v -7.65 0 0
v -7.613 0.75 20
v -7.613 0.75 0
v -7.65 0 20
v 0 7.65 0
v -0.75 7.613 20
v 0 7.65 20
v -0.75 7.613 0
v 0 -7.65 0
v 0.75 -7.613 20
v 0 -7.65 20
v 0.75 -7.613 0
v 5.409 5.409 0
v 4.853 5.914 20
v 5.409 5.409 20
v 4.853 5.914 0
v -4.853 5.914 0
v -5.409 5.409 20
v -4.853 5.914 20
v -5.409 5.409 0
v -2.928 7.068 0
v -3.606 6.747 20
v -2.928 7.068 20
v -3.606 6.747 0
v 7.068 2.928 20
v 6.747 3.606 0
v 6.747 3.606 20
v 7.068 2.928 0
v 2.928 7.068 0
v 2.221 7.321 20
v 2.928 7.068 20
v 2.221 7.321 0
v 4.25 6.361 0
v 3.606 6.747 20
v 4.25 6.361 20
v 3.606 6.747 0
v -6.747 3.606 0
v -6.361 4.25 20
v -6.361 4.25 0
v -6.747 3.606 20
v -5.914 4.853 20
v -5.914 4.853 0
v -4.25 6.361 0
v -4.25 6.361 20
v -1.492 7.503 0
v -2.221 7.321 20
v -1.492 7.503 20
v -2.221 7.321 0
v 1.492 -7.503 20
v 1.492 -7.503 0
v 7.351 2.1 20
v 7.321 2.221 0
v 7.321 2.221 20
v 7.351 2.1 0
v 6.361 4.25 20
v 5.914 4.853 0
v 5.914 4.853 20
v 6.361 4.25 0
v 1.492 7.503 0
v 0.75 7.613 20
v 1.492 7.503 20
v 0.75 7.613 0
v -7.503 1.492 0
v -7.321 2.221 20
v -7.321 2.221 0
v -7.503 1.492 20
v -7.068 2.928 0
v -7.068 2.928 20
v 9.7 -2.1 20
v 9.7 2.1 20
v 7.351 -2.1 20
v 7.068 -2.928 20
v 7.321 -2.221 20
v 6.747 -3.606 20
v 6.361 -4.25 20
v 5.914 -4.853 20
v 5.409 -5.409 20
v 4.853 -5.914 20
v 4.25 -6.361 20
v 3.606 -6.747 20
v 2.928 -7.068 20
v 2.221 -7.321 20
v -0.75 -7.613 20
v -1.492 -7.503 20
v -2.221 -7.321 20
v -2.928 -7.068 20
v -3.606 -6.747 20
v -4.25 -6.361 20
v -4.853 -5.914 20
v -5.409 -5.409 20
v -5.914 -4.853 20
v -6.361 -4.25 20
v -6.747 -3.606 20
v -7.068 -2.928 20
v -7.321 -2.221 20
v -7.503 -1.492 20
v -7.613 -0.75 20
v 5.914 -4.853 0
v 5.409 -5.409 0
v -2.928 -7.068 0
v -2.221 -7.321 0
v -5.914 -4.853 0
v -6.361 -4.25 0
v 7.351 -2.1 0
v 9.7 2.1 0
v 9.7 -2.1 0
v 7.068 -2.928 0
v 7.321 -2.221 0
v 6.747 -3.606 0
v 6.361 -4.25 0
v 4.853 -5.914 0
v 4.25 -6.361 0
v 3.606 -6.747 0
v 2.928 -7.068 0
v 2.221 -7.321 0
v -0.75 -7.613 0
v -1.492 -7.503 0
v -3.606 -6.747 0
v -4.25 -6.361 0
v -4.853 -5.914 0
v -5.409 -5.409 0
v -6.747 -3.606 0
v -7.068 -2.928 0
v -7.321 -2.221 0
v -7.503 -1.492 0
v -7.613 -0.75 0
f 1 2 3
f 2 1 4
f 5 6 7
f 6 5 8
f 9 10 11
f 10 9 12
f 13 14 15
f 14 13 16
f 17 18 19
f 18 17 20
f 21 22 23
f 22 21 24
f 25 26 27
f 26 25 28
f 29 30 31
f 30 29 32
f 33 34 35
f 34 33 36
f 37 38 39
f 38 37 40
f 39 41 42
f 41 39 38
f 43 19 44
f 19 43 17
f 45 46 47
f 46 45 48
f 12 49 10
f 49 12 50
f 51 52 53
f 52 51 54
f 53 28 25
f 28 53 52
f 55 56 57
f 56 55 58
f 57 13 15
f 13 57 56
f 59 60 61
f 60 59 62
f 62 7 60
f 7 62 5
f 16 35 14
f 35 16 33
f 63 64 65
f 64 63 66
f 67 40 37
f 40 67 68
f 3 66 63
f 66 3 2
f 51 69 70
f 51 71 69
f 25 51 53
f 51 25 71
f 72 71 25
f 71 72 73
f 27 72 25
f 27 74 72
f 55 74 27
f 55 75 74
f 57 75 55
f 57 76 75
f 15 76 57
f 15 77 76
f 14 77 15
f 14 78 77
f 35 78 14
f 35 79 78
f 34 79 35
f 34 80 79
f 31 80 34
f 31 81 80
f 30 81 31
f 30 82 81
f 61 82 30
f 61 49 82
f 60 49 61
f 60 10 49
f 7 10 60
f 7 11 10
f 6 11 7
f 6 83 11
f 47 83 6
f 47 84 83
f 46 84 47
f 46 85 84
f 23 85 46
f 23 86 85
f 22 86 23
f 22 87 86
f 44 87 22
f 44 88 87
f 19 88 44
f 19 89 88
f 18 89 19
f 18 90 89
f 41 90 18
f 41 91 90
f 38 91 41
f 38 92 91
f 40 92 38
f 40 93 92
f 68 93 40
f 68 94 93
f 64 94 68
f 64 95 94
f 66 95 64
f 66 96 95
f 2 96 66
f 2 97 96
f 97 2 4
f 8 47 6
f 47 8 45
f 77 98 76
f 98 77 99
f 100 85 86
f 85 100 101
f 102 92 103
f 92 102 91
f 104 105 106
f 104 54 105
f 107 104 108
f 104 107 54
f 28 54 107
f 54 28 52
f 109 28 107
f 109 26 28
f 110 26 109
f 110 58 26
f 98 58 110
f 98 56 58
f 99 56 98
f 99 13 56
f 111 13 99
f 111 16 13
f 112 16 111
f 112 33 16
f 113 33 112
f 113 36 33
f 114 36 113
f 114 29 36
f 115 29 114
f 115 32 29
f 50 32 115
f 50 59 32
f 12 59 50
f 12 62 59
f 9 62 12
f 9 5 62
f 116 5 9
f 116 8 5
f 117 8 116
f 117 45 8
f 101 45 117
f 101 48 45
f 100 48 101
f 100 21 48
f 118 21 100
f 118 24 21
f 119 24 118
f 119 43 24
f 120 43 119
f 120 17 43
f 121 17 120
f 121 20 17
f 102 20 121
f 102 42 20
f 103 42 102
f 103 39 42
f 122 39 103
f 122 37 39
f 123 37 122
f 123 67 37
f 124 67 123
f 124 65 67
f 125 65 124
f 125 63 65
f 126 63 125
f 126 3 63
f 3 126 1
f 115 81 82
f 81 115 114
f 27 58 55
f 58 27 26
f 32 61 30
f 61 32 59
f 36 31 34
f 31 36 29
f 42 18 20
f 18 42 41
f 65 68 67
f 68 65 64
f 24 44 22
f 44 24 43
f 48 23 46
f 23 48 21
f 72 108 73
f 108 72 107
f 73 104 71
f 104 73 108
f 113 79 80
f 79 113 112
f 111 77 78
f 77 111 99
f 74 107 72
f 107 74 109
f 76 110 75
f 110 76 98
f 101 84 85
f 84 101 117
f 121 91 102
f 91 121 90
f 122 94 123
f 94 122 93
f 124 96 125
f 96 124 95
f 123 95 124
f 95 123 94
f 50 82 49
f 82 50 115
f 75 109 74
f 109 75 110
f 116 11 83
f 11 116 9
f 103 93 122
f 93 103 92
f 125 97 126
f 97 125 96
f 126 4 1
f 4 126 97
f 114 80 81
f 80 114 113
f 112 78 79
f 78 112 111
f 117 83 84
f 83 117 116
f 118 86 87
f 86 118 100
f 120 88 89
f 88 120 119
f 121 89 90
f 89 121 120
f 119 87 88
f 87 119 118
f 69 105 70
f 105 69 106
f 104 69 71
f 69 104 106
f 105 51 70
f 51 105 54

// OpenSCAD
// Element pomocniczy/techniczny — wzorzec wałka do szybkiego testu pasowania.
// Wałek posiada wystający klin (wypust) pasujący do wyciętego w bębnie wpustu (rowka).
// Wydrukuj ten element przed drukiem całego bębna, aby sprawdzić spasowanie z otworem bębna.

include <cam_common.scad>

SHAFT_CLEARANCE = 0.15; // luz montażowy (promieniowo/na stronę w mm)
SHAFT_LEN       = 20.0; // poręczna długość próbki testowej

module mating_shaft() {
    union() {
        cylinder(h=SHAFT_LEN, r=SOCKET_R - SHAFT_CLEARANCE, $fn=64);
        translate([SOCKET_R - SHAFT_CLEARANCE - 0.3,
                   -(SOCKET_KEY_WIDTH - 2*SHAFT_CLEARANCE)/2, 0])
            cube([SOCKET_KEY_DEPTH - SHAFT_CLEARANCE + 0.3,
                  SOCKET_KEY_WIDTH - 2*SHAFT_CLEARANCE, SHAFT_LEN]);
    }
}

mating_shaft();
